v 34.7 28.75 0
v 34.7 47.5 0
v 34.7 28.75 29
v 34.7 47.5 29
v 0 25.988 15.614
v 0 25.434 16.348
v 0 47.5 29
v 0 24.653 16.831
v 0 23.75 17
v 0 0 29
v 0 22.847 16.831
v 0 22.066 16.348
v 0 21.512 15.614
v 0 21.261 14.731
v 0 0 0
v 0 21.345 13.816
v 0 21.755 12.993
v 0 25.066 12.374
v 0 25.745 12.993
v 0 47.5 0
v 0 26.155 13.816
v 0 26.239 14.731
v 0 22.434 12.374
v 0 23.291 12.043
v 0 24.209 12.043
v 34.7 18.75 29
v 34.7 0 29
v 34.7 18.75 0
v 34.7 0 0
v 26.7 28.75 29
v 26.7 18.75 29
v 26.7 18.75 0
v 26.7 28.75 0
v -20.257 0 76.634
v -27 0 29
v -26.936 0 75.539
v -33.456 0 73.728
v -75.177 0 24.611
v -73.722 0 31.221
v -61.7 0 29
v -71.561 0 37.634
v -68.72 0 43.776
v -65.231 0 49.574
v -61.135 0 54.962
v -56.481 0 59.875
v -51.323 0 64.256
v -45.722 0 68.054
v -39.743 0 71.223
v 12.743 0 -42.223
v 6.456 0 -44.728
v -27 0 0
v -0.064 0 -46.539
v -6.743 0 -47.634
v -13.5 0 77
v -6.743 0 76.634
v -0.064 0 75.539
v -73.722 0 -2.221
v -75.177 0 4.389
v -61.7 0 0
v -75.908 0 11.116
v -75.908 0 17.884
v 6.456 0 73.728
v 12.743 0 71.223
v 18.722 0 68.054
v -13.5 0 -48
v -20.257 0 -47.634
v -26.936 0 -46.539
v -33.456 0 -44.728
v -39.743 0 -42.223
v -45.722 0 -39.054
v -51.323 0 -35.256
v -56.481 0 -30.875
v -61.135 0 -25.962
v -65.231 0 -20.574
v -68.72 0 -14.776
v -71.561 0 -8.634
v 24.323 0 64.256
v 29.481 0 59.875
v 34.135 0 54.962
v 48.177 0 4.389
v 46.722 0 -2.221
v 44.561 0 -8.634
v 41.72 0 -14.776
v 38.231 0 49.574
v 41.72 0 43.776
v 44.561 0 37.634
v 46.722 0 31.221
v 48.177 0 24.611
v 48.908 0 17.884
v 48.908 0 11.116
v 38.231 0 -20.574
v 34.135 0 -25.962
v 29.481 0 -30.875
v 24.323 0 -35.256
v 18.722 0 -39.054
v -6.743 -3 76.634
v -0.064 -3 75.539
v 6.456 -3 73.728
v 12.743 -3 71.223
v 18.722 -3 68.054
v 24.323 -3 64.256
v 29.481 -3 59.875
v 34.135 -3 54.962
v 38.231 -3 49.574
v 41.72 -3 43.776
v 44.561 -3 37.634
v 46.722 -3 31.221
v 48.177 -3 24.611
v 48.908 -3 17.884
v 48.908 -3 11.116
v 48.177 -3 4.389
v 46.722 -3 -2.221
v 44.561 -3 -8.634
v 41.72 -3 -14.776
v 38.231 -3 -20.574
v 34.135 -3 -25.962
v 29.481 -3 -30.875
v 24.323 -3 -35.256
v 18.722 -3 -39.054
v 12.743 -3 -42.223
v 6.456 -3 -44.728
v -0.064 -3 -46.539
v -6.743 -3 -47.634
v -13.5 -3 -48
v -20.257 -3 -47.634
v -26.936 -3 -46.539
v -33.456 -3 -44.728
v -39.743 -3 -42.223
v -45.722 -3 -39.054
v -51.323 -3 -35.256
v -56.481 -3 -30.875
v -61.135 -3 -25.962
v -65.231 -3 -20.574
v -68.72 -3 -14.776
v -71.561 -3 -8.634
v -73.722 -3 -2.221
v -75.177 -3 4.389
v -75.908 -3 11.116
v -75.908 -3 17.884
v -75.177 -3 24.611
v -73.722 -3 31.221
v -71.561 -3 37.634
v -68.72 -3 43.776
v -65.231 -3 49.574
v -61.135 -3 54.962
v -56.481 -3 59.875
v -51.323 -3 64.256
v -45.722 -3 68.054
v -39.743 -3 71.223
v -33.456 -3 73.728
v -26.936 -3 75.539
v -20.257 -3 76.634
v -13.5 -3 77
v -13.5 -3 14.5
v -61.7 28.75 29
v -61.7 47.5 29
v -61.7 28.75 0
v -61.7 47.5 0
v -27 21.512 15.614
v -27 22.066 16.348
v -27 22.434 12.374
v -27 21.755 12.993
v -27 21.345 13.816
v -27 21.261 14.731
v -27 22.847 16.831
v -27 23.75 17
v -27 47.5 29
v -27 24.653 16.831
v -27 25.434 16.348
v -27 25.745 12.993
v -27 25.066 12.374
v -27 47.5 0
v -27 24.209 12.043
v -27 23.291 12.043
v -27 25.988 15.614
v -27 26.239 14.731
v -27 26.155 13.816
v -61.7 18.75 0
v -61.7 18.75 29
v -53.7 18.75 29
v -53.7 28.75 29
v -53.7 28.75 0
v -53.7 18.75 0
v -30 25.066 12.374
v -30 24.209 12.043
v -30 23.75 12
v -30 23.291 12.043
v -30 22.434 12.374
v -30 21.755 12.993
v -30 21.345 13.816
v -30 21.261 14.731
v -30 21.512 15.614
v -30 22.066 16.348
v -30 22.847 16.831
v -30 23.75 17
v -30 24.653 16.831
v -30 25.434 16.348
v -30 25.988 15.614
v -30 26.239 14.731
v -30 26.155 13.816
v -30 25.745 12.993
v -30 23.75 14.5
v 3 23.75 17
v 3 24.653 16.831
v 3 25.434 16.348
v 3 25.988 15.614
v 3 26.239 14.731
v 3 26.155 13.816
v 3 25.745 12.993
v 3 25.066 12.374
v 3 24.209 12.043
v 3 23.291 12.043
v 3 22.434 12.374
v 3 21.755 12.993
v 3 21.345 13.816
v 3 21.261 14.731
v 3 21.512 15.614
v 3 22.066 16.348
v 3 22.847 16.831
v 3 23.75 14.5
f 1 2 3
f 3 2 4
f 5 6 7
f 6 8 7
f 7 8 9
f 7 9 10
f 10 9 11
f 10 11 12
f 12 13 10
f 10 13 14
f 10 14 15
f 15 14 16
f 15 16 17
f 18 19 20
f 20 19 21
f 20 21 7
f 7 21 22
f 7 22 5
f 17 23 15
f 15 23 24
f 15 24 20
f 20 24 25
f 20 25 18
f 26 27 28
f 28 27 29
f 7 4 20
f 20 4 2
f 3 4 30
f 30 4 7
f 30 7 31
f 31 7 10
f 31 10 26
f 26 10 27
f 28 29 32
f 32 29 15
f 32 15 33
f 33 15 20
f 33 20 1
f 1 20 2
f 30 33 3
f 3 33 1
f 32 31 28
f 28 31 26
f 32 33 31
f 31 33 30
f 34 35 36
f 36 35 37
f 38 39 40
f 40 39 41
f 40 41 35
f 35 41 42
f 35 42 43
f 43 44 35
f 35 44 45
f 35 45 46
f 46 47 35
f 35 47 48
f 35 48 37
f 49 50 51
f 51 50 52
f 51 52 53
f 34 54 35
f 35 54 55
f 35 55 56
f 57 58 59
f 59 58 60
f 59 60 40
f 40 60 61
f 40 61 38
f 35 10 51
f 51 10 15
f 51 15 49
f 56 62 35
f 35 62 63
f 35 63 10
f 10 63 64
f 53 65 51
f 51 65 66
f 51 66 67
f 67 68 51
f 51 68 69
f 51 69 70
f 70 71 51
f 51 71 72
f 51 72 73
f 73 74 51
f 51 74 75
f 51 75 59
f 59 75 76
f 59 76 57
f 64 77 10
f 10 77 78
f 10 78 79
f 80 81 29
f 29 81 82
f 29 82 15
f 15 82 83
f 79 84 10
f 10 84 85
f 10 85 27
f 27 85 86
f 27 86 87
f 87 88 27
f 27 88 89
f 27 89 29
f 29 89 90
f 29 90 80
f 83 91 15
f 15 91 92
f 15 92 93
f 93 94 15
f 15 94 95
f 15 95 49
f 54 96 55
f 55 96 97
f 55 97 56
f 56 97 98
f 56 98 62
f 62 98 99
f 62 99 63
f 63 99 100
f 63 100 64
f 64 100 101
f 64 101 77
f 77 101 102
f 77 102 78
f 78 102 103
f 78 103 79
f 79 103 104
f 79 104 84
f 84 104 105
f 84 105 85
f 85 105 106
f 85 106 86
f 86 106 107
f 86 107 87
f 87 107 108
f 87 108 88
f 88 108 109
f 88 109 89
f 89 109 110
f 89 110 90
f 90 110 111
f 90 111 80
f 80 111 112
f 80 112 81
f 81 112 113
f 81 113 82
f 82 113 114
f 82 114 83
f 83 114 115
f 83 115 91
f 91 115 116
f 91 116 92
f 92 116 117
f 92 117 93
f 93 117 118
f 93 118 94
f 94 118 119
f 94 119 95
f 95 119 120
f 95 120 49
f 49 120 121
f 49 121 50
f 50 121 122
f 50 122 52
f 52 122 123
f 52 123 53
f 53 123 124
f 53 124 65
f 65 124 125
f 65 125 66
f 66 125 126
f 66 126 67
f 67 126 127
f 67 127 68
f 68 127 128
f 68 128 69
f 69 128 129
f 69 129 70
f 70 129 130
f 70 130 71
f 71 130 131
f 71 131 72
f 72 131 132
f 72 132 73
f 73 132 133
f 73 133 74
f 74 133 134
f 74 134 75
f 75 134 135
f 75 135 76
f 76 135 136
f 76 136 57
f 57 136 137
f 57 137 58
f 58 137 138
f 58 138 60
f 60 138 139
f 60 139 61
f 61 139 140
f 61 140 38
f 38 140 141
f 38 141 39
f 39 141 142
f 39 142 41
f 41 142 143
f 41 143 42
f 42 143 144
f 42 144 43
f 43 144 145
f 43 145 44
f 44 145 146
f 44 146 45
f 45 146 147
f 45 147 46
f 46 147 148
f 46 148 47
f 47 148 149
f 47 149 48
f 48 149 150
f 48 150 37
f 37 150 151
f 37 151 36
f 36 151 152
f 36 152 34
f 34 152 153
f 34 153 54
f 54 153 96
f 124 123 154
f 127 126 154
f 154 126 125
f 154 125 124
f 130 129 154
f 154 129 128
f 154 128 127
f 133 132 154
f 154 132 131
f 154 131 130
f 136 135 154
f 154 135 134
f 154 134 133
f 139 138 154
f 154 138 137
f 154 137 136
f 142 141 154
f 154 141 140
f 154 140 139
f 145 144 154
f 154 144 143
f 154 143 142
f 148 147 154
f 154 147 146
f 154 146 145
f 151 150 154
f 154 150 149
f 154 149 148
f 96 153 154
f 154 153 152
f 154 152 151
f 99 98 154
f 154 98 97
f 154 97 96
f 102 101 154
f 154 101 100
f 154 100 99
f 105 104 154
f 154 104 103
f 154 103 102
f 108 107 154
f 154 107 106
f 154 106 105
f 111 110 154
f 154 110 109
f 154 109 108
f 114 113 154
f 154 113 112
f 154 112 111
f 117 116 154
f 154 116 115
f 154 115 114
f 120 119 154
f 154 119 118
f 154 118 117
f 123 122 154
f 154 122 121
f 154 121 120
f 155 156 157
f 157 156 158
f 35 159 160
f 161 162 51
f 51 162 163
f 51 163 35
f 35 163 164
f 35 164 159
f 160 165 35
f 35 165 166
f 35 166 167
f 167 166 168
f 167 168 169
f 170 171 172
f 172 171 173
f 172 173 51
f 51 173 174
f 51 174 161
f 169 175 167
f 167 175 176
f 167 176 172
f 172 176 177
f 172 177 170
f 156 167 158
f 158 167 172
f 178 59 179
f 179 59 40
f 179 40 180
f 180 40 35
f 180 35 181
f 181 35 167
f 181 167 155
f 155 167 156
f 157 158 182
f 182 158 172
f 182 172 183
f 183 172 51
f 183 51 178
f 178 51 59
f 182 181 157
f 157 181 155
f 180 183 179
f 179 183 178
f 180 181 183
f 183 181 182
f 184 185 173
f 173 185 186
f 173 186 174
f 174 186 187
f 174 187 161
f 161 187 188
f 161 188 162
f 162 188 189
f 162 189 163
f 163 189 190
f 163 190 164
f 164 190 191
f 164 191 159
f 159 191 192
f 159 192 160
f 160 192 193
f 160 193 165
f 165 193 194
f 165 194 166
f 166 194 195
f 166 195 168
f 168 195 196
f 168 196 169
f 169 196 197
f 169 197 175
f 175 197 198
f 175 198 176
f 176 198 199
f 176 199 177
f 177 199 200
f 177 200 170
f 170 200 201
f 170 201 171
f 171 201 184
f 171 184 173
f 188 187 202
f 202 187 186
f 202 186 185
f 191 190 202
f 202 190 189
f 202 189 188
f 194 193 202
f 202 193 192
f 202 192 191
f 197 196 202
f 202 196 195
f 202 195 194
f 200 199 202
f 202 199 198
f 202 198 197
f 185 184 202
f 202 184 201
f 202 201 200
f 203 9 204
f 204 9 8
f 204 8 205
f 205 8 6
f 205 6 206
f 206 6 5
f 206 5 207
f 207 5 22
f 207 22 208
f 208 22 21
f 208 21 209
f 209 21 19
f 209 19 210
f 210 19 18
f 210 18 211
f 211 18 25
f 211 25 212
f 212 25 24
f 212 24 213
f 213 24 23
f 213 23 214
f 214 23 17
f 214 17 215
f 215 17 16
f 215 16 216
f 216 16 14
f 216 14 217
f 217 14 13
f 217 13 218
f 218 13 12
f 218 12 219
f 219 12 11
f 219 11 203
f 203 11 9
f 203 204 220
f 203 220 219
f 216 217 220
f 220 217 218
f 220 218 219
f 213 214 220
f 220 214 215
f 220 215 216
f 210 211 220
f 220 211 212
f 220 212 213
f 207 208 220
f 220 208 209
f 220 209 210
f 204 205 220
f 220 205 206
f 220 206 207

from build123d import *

# Parameters (mm, degrees)
SKETCH_1_W               = 34.7
SKETCH_1_H               = 47.5
EXTRUDE_1_DEPTH          = 29
EXTRUDE_1_2_DEPTH        = 29
SKETCH_2_W               = 29
SKETCH_2_H               = 10
CUT_EXTRUDE_1_DEPTH      = 8
SKETCH_3_W               = 29
SKETCH_3_H               = 10
CUT_EXTRUDE_2_DEPTH      = 8
SKETCH_4_R               = 62.5
EXTRUDE_2_DEPTH          = 3
CUT_EXTRUDE_3_DEPTH      = 22
CUT_EXTRUDE_3_DEPTH_BACK = 3
SKETCH_5_R               = 2.5
CUT_EXTRUDE_START        = -3
CUT_EXTRUDE_4_DEPTH      = 3


with BuildPart() as part:
    # 草图1 → 凸台-拉伸1 (new body)
    with BuildSketch(Plane.XY):
        with Locations((17.35, 23.75)):
            Rectangle(SKETCH_1_W, SKETCH_1_H)
    extrude(amount=EXTRUDE_1_DEPTH)

    # 草图2 → 切除-拉伸1 (cut)
    with BuildSketch(Plane(origin=(34.7, 0, 0), x_dir=(0, 0, -1), z_dir=(1, 0, 0))):
        with Locations((-14.5, 23.75)):
            Rectangle(SKETCH_2_W, SKETCH_2_H)
    extrude(amount=-CUT_EXTRUDE_1_DEPTH, mode=Mode.SUBTRACT)



with BuildPart() as body_2:
    # 草图1 → Extrude 1 2 (new body)
    with BuildSketch(Plane.XY):
        with Locations((-44.35, 23.75)):
            Rectangle(SKETCH_1_W, SKETCH_1_H)
    extrude(amount=EXTRUDE_1_2_DEPTH)

    # 草图3 → 切除-拉伸2 (cut)
    with BuildSketch(Plane.ZY.offset(61.7)):
        with Locations((14.5, 23.75)):
            Rectangle(SKETCH_3_W, SKETCH_3_H)
    extrude(amount=-CUT_EXTRUDE_2_DEPTH, mode=Mode.SUBTRACT)


with BuildPart() as part_1:
    add(part.part)

    add(body_2.part)  # 凸台-拉伸2 merges body 2
    # 草图4 → 凸台-拉伸2 (add)
    with BuildSketch(Plane.XZ):
        with Locations(Location((-13.5, 14.5, 0), (0, 0, 270))):
            Circle(SKETCH_4_R)
    extrude(amount=EXTRUDE_2_DEPTH)

    # 草图5 → 切除-拉伸3 (cut, two sides: drawn at the far end of the back side and taken through both)
    with BuildSketch(Plane(origin=(-27, 0, 0), x_dir=(0, 0, -1), z_dir=(1, 0, 0)).offset(-CUT_EXTRUDE_3_DEPTH_BACK)):
        with Locations(Location((-14.5, 23.75, 0), (0, 0, 180))):
            Circle(SKETCH_5_R)
    extrude(amount=CUT_EXTRUDE_3_DEPTH + CUT_EXTRUDE_3_DEPTH_BACK, mode=Mode.SUBTRACT)

    # 草图6 → 切除-拉伸4 (cut)
    with BuildSketch(Plane.ZY.offset(CUT_EXTRUDE_START)):
        with BuildLine():
            ThreePointArc((17, 23.75), (16.267766953, 25.517766953), (14.5, 26.25))
            Line((14.5, 26.25), (14.5, 23.75))
            Line((14.5, 23.75), (17, 23.75))
        make_face()
        with BuildLine():
            Line((14.5, 23.75), (14.5, 26.25))
            ThreePointArc((14.5, 26.25), (12.732233047, 25.517766953), (12, 23.75))
            Line((12, 23.75), (14.5, 23.75))
        make_face()
        with BuildLine():
            Line((17, 23.75), (14.5, 23.75))
            Line((14.5, 23.75), (14.5, 21.25))
            ThreePointArc((14.5, 21.25), (16.267766953, 21.982233047), (17, 23.75))
        make_face()
        with BuildLine():
            Line((14.5, 21.25), (14.5, 23.75))
            Line((14.5, 23.75), (12, 23.75))
            ThreePointArc((12, 23.75), (12.732233047, 21.982233047), (14.5, 21.25))
        make_face()
    extrude(amount=CUT_EXTRUDE_4_DEPTH, mode=Mode.SUBTRACT)


solid = part_1.part
